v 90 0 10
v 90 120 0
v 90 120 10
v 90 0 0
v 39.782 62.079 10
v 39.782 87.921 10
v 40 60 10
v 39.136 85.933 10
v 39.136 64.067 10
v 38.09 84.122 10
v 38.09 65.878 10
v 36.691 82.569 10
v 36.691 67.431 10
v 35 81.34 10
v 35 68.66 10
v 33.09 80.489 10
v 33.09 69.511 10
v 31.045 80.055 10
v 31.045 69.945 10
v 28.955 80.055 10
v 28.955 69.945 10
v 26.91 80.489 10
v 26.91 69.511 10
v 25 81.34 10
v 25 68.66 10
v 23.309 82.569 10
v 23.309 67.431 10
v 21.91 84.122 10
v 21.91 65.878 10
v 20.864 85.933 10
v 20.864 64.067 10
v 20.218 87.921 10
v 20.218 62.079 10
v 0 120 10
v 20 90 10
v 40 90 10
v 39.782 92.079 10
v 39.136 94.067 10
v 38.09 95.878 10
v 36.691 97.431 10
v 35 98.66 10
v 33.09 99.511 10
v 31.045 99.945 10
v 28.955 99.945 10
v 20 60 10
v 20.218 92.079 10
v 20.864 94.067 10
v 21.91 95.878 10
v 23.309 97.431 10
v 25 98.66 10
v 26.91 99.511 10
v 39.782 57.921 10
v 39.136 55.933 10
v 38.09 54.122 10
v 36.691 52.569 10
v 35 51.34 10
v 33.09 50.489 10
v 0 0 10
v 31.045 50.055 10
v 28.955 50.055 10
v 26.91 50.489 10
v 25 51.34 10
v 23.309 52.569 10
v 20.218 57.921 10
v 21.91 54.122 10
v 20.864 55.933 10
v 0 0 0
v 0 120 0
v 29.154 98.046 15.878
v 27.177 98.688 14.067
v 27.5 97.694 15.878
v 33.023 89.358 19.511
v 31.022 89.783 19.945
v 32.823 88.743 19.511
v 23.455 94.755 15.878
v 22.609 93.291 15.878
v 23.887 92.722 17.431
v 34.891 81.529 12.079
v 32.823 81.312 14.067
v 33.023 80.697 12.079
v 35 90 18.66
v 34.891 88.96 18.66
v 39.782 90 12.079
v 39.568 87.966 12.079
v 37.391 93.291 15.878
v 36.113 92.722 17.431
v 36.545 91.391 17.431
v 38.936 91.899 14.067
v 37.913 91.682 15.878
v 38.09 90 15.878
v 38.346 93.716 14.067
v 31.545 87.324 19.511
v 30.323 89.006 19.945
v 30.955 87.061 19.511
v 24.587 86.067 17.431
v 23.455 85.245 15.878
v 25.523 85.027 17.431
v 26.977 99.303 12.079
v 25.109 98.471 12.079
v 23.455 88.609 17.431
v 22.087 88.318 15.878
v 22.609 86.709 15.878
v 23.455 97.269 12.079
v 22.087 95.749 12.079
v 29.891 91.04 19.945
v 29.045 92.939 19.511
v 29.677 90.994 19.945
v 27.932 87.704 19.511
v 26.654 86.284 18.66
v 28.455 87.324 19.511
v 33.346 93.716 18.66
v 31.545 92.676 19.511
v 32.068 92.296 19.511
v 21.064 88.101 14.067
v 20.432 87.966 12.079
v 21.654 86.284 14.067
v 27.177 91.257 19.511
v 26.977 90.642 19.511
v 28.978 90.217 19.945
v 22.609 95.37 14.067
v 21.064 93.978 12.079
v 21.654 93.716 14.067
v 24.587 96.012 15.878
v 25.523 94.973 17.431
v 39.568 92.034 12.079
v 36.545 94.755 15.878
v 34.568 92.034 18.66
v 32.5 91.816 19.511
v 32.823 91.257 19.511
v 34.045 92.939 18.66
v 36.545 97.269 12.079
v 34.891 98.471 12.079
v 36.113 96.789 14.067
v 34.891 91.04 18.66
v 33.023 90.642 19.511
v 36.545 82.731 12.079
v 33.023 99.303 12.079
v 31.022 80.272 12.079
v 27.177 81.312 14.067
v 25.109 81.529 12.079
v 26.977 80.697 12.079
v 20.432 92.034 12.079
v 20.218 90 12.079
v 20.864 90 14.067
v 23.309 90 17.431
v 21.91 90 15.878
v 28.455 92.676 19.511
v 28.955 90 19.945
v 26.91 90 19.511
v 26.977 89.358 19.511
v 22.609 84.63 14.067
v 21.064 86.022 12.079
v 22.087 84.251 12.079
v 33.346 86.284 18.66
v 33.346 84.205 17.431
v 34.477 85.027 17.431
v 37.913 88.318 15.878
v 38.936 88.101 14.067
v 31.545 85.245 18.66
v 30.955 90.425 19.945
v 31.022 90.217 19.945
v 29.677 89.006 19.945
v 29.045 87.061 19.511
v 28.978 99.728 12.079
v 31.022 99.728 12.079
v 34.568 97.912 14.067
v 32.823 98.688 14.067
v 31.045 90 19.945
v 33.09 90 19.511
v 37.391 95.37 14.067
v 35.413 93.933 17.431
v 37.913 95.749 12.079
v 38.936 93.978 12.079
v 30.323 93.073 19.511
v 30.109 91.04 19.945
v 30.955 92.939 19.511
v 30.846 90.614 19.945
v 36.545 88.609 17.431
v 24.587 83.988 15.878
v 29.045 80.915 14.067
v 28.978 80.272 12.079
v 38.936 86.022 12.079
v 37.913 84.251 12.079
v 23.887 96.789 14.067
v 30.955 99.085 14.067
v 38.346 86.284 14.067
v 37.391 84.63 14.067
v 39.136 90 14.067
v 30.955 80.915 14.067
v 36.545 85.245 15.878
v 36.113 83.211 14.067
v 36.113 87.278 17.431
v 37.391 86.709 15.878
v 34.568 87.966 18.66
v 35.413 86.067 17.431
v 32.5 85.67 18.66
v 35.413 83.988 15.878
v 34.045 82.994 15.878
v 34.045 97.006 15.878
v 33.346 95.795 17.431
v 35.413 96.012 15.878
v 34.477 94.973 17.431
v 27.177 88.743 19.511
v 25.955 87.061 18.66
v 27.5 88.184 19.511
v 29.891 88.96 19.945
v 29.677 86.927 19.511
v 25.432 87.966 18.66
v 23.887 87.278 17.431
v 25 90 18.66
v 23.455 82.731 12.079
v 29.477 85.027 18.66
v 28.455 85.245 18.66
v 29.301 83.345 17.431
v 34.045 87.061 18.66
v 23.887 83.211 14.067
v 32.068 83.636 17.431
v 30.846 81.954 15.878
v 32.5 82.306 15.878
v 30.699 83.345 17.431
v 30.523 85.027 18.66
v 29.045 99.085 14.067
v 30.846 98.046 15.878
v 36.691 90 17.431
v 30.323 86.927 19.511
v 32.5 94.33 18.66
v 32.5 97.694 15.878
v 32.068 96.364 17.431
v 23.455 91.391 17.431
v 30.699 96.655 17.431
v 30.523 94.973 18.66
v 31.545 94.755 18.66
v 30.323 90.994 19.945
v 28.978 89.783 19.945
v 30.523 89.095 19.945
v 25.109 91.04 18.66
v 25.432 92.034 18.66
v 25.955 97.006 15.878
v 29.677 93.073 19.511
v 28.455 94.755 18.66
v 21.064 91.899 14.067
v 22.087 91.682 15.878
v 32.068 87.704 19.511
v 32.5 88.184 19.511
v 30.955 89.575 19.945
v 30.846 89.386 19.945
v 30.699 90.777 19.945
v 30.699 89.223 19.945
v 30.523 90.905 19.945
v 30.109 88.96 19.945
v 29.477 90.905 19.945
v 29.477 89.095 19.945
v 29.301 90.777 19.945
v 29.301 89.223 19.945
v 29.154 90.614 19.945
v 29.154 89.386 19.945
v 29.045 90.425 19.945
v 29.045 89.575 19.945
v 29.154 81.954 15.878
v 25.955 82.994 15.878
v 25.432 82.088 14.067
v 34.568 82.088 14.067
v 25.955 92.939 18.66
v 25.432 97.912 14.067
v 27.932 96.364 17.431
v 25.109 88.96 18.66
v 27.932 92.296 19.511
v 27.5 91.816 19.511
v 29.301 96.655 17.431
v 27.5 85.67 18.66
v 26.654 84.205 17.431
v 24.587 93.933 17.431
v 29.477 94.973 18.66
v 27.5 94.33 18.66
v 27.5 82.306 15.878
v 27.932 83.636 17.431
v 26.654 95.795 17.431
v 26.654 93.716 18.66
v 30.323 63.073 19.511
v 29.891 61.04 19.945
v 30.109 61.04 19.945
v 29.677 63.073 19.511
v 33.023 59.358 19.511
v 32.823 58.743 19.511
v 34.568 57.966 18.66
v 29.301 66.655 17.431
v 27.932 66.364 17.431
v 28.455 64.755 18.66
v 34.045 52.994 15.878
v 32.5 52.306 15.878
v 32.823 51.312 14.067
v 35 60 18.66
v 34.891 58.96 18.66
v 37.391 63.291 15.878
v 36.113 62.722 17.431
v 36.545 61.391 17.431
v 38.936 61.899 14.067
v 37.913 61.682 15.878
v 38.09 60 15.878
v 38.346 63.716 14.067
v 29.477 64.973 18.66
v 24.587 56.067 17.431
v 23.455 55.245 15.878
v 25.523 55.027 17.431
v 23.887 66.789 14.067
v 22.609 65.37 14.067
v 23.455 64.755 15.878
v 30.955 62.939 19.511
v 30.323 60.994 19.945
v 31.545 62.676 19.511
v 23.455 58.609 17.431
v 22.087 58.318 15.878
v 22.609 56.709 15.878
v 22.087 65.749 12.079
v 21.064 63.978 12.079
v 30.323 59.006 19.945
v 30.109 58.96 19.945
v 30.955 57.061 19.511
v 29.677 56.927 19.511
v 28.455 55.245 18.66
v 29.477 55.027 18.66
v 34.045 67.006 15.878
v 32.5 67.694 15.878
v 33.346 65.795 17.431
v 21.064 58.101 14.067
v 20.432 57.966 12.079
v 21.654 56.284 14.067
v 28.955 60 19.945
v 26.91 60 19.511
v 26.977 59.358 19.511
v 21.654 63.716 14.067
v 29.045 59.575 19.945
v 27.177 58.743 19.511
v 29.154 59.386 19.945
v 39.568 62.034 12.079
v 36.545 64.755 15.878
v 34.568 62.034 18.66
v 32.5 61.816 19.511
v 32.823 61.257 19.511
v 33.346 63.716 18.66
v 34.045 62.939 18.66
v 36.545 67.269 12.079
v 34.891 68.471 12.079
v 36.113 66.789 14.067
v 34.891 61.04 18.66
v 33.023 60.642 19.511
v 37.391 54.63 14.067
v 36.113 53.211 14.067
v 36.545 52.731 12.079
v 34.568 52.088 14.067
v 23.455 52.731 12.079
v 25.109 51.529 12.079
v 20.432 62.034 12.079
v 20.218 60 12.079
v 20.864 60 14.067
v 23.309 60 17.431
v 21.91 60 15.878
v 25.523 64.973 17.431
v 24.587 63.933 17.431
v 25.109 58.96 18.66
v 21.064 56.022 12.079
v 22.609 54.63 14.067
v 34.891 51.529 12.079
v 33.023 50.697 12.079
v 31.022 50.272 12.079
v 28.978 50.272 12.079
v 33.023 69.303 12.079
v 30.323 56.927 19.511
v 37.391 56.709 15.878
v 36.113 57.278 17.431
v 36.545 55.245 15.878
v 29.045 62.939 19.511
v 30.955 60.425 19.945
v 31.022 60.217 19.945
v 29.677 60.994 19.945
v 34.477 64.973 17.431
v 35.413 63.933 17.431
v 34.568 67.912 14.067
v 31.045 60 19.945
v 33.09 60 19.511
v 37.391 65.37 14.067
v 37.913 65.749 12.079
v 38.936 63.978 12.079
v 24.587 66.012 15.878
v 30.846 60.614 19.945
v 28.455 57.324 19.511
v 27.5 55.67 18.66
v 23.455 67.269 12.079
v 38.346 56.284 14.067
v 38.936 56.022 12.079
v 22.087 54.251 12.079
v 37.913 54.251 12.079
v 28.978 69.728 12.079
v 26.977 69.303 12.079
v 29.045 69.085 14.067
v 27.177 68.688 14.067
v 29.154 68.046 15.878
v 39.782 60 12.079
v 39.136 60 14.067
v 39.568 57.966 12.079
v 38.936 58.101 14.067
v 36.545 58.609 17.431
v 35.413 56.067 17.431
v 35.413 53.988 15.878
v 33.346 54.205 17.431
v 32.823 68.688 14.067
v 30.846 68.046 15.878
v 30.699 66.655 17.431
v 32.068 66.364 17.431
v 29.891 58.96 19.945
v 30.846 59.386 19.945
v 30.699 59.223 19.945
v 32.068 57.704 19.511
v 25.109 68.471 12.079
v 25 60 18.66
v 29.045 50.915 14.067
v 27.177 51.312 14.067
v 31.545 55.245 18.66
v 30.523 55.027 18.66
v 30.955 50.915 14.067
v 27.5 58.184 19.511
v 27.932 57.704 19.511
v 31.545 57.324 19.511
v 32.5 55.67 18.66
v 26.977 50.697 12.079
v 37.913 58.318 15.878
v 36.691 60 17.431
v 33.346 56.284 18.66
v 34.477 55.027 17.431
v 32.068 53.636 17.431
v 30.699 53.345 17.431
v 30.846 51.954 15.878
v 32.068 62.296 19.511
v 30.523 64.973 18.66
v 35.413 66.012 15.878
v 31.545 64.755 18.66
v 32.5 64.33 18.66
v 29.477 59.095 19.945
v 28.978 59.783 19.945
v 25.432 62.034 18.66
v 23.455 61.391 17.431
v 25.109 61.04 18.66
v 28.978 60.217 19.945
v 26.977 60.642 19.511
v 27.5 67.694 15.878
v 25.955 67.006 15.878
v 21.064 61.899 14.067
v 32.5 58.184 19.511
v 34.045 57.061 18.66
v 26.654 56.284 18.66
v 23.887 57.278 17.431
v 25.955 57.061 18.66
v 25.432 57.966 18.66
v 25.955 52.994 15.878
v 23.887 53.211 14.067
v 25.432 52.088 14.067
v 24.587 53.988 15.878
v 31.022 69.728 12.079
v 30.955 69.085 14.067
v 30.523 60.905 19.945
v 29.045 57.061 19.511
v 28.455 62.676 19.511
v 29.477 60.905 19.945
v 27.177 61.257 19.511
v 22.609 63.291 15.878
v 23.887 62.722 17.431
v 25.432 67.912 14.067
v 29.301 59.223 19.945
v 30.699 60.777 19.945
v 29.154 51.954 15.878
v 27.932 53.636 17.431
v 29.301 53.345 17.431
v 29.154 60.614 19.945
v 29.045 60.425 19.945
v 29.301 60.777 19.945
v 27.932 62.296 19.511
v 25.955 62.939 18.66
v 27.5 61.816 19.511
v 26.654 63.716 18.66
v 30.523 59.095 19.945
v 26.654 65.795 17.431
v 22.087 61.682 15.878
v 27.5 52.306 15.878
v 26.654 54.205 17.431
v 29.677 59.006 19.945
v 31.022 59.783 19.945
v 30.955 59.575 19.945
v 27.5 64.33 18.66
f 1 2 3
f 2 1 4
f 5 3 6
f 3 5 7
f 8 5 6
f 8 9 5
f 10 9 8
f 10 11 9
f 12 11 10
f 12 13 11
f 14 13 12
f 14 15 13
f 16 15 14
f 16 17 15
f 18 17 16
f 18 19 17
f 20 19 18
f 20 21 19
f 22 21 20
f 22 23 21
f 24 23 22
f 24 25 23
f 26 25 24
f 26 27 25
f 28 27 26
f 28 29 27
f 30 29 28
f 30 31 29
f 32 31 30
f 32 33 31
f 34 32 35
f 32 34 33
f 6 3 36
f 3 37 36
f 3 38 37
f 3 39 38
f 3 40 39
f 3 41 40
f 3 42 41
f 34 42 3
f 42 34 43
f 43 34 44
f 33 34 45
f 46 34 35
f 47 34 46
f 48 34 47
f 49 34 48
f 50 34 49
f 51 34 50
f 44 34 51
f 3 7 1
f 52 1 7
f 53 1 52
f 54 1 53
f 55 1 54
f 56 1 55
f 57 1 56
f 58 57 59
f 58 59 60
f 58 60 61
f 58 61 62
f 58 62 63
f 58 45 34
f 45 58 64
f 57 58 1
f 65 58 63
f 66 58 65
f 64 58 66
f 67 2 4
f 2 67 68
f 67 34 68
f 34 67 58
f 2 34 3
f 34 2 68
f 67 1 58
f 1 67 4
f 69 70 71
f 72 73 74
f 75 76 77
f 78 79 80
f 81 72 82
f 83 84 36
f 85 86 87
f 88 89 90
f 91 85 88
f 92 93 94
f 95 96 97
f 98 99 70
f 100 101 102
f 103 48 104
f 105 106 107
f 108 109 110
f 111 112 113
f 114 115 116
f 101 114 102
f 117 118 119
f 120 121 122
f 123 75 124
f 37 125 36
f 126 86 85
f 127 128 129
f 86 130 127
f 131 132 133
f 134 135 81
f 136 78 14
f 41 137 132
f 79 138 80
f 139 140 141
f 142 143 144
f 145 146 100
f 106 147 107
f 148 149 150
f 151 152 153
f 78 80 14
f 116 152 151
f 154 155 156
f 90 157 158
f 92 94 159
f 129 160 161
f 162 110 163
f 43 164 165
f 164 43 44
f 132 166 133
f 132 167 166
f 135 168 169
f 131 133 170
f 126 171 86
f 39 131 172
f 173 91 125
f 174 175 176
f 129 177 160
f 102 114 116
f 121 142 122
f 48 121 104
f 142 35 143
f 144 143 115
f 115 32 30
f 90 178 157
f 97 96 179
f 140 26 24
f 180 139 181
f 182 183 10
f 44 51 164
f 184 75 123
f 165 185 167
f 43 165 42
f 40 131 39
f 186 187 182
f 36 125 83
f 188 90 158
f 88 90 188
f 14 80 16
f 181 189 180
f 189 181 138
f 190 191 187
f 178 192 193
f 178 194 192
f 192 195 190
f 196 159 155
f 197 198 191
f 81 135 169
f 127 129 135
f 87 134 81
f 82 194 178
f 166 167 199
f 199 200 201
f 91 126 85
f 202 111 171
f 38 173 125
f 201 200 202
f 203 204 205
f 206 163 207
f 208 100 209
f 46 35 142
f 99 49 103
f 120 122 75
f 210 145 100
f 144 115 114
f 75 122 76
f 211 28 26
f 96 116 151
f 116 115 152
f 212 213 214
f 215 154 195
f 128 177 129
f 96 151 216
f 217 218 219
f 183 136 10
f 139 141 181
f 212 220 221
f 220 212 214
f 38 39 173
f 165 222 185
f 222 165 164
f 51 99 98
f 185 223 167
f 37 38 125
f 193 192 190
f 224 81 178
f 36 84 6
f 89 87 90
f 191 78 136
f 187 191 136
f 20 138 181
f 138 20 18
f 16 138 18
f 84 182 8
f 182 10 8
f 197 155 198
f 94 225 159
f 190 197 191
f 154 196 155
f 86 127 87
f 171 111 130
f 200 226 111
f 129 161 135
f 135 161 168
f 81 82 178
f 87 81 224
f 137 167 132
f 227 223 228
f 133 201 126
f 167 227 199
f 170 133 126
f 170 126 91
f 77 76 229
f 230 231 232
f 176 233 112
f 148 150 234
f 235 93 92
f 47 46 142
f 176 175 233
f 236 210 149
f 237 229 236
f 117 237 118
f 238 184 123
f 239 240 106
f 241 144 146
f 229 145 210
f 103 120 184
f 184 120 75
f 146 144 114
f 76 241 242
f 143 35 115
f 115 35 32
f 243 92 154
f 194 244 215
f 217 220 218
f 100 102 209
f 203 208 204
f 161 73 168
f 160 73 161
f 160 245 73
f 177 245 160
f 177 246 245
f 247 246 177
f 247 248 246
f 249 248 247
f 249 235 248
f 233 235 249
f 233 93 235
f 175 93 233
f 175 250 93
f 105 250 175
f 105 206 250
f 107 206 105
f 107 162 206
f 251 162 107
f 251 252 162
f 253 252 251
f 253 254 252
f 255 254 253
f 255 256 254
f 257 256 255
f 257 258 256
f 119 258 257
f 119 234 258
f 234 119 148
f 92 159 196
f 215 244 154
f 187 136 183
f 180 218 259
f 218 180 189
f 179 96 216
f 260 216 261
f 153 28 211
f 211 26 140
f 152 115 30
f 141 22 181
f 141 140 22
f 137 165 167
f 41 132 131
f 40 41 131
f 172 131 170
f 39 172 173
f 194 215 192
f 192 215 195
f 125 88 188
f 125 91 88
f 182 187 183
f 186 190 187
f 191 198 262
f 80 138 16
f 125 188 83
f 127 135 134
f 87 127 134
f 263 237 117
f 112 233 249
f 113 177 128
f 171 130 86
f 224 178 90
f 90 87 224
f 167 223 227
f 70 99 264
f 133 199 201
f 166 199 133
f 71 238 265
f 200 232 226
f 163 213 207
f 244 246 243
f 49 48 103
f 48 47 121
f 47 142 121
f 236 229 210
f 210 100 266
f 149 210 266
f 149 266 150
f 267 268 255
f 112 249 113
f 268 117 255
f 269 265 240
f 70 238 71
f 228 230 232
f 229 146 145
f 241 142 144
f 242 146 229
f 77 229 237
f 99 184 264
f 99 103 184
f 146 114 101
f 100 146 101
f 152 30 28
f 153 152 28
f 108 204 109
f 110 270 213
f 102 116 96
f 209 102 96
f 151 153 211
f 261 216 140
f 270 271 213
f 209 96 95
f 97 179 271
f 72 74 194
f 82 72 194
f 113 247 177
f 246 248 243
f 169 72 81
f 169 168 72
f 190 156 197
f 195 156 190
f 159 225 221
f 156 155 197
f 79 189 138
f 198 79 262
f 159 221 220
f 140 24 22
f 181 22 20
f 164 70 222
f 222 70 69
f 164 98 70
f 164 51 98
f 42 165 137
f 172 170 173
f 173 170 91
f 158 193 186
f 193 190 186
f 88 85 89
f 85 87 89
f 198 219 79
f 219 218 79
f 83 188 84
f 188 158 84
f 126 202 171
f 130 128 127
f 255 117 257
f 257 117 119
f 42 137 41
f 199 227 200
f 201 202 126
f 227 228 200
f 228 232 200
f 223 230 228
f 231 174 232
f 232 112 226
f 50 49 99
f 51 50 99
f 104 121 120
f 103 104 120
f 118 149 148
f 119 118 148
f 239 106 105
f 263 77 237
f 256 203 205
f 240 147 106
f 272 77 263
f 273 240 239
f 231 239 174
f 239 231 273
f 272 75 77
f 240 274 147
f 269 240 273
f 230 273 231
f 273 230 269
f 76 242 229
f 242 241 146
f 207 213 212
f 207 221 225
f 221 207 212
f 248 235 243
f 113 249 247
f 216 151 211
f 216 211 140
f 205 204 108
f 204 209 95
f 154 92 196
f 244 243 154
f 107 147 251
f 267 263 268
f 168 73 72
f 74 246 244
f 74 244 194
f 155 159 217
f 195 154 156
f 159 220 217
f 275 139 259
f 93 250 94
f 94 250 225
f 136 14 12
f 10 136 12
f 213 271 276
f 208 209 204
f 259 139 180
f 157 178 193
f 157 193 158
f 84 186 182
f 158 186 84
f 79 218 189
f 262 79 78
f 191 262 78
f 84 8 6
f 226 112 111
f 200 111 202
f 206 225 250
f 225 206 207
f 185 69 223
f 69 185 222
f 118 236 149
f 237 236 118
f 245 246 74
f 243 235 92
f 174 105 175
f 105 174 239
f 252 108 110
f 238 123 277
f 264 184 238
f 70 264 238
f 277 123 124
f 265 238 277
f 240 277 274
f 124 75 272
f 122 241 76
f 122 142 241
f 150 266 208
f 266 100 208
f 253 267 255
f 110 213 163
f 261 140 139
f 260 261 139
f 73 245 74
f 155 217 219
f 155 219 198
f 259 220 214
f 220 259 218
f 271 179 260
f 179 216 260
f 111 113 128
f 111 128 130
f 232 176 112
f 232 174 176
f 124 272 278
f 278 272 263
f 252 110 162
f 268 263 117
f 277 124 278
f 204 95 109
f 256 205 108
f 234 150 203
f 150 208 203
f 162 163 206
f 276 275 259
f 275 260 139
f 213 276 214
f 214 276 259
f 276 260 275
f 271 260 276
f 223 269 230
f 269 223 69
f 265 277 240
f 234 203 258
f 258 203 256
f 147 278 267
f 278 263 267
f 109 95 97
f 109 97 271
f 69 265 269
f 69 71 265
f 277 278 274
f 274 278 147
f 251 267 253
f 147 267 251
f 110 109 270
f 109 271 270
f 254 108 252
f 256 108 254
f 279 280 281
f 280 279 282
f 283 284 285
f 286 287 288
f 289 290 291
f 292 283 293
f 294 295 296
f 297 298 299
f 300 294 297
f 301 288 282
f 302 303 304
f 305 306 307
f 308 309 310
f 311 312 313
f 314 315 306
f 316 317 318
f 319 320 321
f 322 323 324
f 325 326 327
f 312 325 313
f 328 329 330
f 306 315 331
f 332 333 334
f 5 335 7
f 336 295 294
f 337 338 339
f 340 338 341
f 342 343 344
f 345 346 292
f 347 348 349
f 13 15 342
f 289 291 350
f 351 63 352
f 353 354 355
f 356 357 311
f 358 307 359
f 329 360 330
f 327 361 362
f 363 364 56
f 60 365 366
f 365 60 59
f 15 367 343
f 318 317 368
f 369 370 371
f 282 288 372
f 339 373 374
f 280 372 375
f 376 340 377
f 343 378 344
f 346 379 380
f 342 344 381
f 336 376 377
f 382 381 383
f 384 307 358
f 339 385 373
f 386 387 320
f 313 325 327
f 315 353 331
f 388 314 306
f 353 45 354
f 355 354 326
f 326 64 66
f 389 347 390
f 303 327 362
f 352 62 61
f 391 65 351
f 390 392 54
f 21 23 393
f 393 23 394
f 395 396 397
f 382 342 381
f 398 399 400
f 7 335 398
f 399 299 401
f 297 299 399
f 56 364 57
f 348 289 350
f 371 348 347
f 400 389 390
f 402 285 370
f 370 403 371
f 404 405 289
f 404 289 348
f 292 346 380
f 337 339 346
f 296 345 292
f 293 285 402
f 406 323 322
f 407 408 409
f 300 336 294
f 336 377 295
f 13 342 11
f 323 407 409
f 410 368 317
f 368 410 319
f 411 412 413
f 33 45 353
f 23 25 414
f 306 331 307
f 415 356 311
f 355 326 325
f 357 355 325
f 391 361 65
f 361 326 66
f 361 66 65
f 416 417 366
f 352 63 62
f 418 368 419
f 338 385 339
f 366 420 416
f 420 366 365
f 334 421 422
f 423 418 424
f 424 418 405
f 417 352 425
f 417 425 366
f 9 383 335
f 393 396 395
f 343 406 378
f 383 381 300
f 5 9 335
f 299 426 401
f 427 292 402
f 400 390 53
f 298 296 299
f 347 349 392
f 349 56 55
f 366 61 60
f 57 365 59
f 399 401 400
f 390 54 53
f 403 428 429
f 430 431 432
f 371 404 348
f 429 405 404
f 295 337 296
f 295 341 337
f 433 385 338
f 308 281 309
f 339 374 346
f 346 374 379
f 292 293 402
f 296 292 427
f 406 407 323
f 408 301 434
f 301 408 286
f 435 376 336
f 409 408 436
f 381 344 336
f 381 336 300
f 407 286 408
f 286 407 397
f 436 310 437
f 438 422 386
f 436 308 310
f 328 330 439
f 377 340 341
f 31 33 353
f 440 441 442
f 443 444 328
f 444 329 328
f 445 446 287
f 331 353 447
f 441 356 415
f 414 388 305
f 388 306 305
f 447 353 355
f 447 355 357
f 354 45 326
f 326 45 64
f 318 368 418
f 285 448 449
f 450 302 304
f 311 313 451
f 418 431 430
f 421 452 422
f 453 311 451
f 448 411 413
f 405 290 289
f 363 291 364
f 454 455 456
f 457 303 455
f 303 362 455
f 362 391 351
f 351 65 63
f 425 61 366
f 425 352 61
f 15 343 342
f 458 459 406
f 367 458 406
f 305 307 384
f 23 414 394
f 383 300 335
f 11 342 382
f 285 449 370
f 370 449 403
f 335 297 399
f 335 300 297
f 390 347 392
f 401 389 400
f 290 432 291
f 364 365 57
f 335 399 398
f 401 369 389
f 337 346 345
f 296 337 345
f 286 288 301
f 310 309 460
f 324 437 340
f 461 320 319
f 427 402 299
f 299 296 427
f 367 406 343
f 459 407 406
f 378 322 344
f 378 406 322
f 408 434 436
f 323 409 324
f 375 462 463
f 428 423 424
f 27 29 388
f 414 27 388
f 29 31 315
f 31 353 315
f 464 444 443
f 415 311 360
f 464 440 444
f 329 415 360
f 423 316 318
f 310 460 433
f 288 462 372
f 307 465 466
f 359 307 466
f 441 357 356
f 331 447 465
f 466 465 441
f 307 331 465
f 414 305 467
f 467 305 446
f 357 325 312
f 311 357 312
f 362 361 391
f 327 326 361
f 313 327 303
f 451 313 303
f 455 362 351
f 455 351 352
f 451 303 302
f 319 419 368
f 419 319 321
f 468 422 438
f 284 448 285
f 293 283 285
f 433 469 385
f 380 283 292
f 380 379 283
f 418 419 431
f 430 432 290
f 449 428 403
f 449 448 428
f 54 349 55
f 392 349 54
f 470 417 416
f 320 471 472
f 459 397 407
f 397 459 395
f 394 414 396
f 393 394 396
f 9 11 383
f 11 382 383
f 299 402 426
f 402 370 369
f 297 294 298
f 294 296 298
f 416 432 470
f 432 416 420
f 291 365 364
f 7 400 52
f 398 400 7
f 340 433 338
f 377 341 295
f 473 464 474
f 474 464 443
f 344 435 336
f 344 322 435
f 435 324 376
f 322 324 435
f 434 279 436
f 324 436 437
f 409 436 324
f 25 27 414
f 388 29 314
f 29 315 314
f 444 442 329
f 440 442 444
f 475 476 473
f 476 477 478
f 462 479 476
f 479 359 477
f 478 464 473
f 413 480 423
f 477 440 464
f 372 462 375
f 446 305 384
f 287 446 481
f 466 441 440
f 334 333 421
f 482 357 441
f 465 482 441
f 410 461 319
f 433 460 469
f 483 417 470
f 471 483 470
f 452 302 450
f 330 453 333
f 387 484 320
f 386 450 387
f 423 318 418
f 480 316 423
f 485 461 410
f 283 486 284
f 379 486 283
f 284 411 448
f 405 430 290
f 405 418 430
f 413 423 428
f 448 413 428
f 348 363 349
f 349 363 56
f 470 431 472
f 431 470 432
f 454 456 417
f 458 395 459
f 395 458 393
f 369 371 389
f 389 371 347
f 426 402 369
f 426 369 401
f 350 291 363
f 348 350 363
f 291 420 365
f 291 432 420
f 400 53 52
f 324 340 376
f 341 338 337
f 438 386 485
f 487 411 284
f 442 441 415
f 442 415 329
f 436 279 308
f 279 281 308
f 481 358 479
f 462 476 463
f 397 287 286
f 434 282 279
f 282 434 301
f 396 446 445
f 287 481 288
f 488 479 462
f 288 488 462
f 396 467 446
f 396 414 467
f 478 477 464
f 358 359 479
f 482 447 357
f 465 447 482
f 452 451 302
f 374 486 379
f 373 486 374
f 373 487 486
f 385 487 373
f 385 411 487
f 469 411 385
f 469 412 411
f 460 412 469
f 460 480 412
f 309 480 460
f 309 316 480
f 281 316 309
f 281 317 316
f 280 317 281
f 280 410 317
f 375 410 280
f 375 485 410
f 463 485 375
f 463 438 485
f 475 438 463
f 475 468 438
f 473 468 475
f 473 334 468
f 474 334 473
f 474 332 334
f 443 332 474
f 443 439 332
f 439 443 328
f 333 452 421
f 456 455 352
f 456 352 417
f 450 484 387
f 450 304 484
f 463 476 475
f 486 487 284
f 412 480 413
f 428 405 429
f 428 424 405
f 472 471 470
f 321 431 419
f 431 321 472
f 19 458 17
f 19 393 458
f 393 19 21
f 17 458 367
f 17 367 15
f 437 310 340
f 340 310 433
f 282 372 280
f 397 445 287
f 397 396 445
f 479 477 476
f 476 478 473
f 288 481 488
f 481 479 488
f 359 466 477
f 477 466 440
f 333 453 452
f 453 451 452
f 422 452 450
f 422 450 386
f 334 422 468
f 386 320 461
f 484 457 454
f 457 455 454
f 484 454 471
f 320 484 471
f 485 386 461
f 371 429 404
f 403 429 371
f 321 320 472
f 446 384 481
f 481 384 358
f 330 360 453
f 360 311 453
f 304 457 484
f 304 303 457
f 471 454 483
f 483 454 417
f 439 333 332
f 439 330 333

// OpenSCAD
union(){
    cube(size=[90, 120, 10]);
    translate(v=[30, 90, 10]){
        sphere(r=10);
    };
    translate(v=[30, 60, 10]){
        sphere(r=10);
    };
};
